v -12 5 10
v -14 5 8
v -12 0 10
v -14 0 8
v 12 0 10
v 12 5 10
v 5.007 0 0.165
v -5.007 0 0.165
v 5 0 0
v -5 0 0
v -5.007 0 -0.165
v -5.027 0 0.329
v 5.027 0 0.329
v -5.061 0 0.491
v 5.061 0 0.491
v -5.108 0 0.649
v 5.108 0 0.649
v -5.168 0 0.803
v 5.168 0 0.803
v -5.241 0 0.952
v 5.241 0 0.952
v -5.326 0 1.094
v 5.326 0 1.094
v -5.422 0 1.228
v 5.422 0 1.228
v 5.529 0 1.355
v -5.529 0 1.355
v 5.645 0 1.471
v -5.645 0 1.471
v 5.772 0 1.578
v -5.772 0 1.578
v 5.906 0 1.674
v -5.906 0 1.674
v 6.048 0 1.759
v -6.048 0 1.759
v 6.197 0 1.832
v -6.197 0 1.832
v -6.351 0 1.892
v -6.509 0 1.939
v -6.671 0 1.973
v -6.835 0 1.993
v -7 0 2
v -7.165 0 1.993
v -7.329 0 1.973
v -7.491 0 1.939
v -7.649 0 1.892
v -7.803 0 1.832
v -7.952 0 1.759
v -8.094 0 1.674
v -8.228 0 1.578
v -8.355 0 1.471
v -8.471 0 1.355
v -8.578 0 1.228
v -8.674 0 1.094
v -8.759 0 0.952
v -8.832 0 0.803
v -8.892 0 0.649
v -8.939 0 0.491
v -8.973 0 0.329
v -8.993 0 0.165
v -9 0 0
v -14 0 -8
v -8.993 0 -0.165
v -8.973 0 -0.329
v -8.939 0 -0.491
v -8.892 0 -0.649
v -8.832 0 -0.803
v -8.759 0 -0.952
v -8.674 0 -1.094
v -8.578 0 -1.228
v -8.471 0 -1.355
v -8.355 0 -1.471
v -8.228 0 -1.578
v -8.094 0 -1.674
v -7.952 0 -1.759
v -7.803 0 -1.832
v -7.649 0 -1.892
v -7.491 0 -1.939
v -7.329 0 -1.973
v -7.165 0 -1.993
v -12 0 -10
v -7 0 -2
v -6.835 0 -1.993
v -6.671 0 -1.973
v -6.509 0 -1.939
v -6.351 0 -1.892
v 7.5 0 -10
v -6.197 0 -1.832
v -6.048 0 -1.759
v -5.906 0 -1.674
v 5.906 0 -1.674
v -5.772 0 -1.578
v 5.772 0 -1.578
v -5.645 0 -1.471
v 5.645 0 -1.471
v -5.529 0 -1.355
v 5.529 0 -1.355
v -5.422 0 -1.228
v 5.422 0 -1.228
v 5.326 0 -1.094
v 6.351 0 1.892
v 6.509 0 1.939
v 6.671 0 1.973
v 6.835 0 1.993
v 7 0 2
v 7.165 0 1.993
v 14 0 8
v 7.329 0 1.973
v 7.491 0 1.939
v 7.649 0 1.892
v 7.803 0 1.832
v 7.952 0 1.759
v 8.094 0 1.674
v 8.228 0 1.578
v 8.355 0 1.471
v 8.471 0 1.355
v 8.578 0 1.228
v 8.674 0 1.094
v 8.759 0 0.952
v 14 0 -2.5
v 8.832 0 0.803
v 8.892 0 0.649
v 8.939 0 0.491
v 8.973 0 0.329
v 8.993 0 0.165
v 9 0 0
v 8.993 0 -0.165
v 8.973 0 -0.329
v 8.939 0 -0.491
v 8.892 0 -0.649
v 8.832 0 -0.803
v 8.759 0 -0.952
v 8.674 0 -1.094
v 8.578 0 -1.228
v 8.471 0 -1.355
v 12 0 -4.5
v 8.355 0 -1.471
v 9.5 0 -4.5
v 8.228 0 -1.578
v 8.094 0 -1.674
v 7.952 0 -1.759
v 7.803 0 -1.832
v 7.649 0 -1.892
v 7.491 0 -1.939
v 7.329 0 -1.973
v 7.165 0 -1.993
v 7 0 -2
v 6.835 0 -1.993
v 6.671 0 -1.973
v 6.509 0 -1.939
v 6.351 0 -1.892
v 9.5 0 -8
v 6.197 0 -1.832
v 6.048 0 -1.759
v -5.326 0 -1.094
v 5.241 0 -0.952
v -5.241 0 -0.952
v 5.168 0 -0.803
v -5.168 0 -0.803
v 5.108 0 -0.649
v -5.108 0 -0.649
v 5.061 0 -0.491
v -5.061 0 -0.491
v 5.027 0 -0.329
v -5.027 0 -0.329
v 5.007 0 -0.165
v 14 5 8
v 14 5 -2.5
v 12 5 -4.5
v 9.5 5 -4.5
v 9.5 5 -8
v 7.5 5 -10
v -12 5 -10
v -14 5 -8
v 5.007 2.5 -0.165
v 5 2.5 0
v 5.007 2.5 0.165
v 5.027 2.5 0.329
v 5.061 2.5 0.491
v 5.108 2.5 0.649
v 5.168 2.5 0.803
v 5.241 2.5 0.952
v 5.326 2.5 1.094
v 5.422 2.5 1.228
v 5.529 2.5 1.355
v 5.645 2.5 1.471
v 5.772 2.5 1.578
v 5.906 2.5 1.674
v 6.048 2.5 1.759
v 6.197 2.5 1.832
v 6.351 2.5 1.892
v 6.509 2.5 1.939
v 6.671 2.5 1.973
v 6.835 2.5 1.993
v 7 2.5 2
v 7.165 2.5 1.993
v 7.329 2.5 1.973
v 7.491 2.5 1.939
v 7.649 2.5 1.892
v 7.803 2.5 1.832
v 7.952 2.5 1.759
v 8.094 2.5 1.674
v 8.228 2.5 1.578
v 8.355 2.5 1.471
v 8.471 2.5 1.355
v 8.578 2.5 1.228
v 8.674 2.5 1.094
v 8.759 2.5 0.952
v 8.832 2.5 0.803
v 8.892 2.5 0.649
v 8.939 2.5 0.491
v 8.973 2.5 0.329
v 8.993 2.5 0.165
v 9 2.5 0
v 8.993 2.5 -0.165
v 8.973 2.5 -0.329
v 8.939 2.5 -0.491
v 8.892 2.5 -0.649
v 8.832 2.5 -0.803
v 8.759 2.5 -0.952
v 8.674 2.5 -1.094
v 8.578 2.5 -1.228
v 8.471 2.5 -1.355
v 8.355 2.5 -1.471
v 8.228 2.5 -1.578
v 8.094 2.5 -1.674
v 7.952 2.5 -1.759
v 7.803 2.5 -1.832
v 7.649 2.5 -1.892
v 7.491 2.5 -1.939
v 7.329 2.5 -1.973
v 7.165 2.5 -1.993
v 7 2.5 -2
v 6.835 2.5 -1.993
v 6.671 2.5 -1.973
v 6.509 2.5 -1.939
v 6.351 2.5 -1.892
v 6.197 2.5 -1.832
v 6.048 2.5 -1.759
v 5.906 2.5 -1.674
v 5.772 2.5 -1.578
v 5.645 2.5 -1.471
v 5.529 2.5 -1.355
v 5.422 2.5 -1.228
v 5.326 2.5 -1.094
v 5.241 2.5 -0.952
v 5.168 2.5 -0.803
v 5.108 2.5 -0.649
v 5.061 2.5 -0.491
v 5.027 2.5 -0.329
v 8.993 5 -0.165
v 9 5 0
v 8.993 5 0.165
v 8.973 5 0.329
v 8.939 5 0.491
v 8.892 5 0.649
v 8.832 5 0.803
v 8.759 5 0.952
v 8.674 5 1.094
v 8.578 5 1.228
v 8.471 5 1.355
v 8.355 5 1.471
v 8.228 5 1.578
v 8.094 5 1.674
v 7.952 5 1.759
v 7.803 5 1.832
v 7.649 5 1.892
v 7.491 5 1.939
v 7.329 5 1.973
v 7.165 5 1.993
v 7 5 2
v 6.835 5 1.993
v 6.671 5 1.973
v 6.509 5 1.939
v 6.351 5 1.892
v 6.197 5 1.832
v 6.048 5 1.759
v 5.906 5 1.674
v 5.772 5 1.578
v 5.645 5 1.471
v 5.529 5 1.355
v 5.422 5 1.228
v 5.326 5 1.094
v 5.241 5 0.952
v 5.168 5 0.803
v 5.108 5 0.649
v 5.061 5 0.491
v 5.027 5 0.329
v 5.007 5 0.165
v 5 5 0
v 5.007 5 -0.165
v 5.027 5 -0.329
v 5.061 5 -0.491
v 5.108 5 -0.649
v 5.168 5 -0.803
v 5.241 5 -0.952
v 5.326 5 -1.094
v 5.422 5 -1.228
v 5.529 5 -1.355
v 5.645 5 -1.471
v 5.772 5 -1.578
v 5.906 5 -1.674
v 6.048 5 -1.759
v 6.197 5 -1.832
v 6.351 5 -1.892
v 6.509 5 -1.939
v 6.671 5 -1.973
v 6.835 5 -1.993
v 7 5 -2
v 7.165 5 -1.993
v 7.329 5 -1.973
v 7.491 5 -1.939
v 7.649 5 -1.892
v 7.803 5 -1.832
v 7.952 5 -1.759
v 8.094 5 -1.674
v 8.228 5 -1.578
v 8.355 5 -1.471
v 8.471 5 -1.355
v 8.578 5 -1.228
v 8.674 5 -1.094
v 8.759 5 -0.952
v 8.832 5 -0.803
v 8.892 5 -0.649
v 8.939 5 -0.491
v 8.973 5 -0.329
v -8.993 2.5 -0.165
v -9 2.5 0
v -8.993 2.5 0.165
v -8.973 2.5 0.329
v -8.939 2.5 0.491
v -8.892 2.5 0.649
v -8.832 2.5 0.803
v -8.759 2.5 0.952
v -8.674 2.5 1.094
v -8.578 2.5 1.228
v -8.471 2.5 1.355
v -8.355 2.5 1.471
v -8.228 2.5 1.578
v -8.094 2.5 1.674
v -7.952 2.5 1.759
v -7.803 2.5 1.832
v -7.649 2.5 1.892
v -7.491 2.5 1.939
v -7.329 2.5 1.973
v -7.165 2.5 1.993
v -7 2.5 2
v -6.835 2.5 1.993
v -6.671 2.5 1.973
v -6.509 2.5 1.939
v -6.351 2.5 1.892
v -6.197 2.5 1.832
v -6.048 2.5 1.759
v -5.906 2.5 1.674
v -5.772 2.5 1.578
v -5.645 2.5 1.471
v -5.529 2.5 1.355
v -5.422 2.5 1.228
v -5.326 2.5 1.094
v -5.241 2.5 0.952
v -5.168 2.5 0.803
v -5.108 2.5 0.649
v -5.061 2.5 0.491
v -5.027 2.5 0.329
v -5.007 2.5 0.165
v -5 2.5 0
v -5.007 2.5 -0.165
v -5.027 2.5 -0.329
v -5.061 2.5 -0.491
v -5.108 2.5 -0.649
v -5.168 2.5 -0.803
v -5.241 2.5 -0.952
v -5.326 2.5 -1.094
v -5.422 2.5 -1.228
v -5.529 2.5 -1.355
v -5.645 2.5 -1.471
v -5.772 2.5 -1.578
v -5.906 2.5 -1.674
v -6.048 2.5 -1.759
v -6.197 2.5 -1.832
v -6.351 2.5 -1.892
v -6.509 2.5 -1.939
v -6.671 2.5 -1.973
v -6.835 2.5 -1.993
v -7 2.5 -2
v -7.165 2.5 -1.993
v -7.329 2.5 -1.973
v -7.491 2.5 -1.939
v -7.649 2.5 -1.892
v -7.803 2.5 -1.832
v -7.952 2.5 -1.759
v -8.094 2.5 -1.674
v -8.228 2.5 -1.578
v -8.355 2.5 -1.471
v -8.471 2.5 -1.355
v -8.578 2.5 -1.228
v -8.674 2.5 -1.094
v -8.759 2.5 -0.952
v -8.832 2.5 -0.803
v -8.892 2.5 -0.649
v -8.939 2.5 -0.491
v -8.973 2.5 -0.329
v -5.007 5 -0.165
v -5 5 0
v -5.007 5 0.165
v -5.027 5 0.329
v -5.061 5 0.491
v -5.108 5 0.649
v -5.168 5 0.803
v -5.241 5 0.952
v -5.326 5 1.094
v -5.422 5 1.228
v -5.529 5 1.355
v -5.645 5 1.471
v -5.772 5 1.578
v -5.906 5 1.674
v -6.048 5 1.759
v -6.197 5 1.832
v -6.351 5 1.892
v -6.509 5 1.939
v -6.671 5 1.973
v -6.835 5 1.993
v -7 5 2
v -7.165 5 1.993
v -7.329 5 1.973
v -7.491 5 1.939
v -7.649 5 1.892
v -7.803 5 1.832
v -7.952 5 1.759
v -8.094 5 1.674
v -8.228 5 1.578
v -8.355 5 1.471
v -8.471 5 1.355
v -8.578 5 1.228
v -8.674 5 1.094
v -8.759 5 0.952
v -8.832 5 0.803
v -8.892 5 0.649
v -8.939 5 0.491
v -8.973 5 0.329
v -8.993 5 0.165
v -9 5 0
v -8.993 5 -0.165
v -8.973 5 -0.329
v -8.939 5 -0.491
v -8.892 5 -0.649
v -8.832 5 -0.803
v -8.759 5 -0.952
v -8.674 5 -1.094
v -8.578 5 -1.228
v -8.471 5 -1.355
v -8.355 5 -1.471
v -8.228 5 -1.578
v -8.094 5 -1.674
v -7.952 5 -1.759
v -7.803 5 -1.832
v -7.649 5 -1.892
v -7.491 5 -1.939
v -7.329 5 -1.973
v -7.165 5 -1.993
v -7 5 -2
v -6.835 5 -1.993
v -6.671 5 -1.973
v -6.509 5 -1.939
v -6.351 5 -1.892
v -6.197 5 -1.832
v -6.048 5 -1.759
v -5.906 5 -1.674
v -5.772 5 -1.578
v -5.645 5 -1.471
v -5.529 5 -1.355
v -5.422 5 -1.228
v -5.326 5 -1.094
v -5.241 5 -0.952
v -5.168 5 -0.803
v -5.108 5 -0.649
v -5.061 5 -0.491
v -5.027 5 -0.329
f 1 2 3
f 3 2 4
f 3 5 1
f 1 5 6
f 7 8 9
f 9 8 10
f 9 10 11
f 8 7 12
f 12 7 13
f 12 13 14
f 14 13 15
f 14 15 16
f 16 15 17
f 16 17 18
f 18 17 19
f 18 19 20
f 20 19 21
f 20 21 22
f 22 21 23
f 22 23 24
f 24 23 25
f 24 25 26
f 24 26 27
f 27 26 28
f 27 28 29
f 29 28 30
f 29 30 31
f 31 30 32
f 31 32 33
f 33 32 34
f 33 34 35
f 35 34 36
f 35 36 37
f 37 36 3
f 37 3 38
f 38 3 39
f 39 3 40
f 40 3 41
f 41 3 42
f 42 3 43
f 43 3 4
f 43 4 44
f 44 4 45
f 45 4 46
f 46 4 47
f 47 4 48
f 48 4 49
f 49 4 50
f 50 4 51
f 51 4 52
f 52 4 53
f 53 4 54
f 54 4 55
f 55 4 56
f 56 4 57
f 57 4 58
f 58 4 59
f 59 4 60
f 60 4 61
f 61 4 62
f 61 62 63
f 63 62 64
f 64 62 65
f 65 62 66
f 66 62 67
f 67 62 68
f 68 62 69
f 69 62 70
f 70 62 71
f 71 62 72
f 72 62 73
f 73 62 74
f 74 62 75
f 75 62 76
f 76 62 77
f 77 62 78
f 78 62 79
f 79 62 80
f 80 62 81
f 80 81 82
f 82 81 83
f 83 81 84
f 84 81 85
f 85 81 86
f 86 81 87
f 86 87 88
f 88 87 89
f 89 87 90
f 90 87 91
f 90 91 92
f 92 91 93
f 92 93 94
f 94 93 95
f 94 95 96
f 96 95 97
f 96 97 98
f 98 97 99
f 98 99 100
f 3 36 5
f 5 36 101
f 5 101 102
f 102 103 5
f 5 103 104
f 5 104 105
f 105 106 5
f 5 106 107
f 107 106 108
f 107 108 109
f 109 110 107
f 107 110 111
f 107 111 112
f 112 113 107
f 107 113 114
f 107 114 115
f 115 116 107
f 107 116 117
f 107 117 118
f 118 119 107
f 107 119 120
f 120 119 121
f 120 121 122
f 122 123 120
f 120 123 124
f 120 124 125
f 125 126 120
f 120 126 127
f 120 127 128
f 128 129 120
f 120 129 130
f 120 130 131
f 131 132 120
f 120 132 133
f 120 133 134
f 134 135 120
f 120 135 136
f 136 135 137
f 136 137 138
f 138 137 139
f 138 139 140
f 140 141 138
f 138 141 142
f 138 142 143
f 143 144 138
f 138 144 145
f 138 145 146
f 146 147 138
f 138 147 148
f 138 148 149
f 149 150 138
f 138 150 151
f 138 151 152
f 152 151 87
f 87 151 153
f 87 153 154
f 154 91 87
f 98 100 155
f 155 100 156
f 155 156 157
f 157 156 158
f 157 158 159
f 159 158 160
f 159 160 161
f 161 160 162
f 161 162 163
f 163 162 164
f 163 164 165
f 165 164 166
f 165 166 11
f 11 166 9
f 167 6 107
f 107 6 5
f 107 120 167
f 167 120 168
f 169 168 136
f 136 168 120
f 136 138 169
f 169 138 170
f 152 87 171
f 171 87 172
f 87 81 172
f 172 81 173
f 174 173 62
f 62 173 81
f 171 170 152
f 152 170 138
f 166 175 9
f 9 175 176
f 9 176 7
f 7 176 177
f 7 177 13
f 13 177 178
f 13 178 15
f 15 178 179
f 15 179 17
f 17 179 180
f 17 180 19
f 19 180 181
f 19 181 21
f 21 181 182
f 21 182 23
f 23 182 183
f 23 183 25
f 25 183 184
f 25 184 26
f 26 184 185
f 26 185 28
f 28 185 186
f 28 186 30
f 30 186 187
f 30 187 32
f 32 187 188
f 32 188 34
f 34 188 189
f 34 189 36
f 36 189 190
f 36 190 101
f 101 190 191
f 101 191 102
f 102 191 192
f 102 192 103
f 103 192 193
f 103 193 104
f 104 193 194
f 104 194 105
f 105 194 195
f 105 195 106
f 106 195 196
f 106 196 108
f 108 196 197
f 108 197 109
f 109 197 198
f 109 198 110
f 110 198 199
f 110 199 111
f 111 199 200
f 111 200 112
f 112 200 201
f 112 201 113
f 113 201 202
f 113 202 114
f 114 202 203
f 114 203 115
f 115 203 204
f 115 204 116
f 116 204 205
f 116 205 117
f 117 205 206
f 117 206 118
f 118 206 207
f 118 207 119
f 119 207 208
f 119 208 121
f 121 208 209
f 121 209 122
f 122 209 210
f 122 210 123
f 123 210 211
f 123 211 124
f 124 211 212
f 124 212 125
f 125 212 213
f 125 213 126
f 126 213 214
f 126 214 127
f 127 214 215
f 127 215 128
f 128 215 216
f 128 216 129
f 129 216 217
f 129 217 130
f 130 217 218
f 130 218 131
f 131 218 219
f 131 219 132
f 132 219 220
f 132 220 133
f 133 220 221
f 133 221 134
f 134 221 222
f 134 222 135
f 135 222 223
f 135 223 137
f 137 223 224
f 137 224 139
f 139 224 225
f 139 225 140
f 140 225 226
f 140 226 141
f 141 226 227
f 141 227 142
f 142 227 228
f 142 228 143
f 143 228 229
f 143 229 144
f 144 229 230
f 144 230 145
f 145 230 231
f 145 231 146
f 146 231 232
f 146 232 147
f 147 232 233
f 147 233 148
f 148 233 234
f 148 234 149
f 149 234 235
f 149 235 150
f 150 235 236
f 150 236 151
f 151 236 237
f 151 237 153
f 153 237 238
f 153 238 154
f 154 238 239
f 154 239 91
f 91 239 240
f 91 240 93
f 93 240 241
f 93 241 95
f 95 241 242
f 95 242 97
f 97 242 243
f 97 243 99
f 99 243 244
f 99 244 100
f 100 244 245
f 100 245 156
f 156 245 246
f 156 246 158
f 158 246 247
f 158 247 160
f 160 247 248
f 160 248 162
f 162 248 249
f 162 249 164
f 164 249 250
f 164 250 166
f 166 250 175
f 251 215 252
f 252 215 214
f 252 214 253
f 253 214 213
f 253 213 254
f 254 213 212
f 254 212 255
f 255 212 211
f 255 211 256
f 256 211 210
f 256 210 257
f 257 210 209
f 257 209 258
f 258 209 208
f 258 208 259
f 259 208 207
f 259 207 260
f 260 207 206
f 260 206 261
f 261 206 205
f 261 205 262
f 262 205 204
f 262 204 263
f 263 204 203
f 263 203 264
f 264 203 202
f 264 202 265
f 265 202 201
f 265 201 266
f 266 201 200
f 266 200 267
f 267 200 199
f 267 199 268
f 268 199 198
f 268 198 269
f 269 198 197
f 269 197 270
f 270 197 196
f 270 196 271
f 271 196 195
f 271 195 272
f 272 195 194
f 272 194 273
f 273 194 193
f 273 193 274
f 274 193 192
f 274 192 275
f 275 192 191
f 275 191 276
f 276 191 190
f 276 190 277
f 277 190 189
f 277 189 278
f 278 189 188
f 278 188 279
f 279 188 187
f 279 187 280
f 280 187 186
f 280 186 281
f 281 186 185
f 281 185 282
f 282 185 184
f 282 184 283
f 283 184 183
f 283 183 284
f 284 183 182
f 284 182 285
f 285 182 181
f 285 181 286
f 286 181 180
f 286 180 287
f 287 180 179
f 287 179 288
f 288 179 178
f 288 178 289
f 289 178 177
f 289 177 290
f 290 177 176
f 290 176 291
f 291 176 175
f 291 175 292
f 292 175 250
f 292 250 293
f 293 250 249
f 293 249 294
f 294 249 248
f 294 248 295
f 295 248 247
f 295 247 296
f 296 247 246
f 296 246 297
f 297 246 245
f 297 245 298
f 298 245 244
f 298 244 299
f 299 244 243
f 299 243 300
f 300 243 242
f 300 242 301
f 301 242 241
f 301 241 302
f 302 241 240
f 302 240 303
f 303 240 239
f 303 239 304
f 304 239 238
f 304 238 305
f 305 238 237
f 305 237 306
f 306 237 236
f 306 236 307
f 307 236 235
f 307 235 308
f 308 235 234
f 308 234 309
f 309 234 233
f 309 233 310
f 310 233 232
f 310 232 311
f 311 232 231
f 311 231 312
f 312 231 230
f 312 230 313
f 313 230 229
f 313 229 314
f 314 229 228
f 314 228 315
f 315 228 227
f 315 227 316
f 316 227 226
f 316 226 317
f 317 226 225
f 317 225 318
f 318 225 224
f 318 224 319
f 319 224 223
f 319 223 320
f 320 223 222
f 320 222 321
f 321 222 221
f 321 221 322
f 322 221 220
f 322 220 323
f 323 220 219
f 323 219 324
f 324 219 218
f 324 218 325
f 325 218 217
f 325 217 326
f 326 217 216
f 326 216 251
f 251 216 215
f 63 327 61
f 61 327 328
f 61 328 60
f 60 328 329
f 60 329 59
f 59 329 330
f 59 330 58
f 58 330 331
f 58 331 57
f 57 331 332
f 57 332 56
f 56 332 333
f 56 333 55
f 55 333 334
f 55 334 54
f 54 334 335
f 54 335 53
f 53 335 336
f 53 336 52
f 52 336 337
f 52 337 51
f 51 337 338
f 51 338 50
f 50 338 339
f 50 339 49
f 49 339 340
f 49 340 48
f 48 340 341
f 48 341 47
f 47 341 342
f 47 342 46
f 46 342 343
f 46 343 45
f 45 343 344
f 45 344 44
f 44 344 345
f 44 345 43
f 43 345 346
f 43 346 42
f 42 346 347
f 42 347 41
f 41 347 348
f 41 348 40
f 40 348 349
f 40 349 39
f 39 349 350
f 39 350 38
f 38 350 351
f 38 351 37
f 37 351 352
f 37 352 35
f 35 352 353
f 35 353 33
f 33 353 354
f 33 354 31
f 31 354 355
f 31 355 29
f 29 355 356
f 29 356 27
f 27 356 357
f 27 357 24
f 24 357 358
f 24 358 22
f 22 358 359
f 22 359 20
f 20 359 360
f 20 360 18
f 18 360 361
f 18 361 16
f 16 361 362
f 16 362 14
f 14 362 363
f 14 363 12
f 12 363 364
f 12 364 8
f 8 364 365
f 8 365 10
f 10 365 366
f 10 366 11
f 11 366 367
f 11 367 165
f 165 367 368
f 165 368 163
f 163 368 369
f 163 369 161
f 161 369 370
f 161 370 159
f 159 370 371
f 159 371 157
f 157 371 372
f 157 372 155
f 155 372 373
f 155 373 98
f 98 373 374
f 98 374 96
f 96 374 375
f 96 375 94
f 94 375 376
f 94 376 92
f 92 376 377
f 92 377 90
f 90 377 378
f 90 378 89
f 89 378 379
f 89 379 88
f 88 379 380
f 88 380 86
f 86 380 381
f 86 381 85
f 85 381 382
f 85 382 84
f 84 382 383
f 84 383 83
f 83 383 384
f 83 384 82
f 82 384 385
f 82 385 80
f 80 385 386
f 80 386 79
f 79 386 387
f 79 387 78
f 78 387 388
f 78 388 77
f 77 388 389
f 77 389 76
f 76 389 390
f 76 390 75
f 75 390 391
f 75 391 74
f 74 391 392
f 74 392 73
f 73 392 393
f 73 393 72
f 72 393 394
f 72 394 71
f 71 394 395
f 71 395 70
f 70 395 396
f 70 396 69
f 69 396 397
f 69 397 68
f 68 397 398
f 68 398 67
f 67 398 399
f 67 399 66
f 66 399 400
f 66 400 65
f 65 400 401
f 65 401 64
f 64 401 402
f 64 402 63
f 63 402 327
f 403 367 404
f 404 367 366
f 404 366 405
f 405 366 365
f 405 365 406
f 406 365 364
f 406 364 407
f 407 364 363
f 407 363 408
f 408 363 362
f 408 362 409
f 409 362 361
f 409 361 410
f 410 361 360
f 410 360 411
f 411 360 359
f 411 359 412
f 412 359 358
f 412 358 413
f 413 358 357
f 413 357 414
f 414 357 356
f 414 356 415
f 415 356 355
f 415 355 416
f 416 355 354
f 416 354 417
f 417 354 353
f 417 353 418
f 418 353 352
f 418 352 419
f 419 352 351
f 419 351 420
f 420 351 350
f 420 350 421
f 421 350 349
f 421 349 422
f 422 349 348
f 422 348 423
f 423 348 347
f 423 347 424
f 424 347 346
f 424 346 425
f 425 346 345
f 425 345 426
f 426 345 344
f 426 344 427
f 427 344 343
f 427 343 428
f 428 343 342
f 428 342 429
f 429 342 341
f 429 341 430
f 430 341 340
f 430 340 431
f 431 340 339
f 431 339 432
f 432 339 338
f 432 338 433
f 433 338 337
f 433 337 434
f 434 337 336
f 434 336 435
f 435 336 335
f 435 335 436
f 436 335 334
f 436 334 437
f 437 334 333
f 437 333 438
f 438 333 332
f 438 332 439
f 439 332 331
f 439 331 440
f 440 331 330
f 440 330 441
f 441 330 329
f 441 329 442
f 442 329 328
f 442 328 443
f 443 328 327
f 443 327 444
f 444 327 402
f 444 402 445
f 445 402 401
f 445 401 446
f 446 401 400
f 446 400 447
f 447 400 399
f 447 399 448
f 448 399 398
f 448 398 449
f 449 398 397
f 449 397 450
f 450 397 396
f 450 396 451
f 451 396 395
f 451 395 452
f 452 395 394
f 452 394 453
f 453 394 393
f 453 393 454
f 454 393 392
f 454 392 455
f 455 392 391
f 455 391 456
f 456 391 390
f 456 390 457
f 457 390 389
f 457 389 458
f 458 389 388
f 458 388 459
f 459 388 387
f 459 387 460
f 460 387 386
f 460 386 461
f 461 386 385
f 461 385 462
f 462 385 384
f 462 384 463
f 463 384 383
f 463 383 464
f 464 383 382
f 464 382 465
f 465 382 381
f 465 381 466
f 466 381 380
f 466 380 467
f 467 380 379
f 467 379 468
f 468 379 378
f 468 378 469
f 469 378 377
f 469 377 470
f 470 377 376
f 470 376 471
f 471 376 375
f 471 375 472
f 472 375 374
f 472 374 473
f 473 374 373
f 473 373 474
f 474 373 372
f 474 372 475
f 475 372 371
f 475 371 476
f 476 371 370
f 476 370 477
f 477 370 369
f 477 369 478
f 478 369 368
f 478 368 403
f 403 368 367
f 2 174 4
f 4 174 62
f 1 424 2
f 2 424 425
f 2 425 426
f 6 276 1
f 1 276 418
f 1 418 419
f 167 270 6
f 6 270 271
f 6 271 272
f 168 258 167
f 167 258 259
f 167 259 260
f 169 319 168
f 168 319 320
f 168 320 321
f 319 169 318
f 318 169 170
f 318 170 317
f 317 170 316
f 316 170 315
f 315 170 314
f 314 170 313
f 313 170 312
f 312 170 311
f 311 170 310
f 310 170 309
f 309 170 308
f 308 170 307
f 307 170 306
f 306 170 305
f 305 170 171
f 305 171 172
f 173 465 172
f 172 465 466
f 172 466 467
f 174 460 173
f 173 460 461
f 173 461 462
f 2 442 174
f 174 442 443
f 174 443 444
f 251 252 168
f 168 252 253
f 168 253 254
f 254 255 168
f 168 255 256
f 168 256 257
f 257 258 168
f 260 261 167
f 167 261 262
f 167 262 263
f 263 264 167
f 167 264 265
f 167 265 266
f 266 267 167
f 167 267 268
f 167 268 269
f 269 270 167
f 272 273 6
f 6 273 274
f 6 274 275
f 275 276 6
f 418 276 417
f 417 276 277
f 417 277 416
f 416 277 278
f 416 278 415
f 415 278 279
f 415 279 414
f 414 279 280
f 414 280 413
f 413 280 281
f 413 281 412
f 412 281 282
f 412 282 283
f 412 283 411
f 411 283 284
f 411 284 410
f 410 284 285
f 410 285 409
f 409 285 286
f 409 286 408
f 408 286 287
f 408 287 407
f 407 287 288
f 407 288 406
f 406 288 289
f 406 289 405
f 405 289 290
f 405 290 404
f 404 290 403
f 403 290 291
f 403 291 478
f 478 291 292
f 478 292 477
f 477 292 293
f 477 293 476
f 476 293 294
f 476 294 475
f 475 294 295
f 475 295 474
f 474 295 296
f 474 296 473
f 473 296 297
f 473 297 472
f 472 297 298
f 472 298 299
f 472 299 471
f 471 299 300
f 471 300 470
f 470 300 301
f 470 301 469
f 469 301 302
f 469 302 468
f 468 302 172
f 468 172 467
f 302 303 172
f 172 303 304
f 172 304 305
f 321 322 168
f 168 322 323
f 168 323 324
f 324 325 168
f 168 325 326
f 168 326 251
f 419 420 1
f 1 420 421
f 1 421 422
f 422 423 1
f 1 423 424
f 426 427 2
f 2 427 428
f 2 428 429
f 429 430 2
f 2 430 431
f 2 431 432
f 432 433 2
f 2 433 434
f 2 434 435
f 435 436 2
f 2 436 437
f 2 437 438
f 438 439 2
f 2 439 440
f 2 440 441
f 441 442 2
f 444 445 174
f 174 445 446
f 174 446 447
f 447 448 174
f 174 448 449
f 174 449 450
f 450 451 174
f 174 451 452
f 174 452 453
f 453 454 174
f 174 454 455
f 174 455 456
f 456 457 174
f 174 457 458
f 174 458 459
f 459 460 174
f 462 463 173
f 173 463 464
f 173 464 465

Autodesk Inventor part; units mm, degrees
ref_plane "YZ Plane" through (0, 0, 0) normal (1, 0, 0) x (0, 1, 0)
ref_plane "XZ Plane" through (0, 0, 0) normal (0, 1, 0) x (-1, 0, 0)
ref_plane "XY Plane" through (0, 0, 0) normal (0, 0, 1) x (1, 0, 0)
sketch "Sketch1" plane through (0, 0, 0) normal (0, 1, 0) x (-1, 0, 0)
  point P0 (0, 0)
sketch "Sketch2" plane through (0, 0, 0) normal (0, 1, 0) x (-1, 0, 0)
  line L0 (14, 10) -> (-14, 10)
  line L1 (-14, 10) -> (-14, -10)
  line L2 (-14, -10) -> (14, -10)
  line L3 (14, -10) -> (14, 10)
  point P0 (0, 0)
  dimension "d0" = 28
  dimension "d1" = 20
extrude "Extrusion1" add sketch "Sketch2" along normal blind 5
sketch "Sketch3" plane through (0, 5, 0) normal (0, 1, 0) x (1, 0, 0)
  circle A0 centre (7, 0) radius 2
  circle A1 centre (-7, 0) radius 2
  point P0 (0, 0)
  dimension "d4" = 4
  dimension "d5" = 4
extrude "Extrusion2" cut sketch "Sketch3" against normal blind 6
sketch "Sketch4" plane through (0, 5, 0) normal (0, 1, 0) x (1, 0, 0)
  line L0 (9.5, 4.5) -> (16.3647, 4.5)
  line L1 (16.3647, 4.5) -> (16.3647, 12.8099)
  line L2 (16.3647, 12.8099) -> (9.5, 12.8099)
  line L3 (9.5, 12.8099) -> (9.5, 4.5)
  point P0 (0, 0)
extrude "Extrusion3" cut sketch "Sketch4" against normal blind 6
chamfer "Chamfer1" distance 2 angle 45 5 edges at (-14, 2.5, -10) (9.5, 2.5, -10) (14, 2.5, -4.5) (14, 2.5, 10) (-14, 2.5, 10)
properties part number "gantryBeltCnctr"
